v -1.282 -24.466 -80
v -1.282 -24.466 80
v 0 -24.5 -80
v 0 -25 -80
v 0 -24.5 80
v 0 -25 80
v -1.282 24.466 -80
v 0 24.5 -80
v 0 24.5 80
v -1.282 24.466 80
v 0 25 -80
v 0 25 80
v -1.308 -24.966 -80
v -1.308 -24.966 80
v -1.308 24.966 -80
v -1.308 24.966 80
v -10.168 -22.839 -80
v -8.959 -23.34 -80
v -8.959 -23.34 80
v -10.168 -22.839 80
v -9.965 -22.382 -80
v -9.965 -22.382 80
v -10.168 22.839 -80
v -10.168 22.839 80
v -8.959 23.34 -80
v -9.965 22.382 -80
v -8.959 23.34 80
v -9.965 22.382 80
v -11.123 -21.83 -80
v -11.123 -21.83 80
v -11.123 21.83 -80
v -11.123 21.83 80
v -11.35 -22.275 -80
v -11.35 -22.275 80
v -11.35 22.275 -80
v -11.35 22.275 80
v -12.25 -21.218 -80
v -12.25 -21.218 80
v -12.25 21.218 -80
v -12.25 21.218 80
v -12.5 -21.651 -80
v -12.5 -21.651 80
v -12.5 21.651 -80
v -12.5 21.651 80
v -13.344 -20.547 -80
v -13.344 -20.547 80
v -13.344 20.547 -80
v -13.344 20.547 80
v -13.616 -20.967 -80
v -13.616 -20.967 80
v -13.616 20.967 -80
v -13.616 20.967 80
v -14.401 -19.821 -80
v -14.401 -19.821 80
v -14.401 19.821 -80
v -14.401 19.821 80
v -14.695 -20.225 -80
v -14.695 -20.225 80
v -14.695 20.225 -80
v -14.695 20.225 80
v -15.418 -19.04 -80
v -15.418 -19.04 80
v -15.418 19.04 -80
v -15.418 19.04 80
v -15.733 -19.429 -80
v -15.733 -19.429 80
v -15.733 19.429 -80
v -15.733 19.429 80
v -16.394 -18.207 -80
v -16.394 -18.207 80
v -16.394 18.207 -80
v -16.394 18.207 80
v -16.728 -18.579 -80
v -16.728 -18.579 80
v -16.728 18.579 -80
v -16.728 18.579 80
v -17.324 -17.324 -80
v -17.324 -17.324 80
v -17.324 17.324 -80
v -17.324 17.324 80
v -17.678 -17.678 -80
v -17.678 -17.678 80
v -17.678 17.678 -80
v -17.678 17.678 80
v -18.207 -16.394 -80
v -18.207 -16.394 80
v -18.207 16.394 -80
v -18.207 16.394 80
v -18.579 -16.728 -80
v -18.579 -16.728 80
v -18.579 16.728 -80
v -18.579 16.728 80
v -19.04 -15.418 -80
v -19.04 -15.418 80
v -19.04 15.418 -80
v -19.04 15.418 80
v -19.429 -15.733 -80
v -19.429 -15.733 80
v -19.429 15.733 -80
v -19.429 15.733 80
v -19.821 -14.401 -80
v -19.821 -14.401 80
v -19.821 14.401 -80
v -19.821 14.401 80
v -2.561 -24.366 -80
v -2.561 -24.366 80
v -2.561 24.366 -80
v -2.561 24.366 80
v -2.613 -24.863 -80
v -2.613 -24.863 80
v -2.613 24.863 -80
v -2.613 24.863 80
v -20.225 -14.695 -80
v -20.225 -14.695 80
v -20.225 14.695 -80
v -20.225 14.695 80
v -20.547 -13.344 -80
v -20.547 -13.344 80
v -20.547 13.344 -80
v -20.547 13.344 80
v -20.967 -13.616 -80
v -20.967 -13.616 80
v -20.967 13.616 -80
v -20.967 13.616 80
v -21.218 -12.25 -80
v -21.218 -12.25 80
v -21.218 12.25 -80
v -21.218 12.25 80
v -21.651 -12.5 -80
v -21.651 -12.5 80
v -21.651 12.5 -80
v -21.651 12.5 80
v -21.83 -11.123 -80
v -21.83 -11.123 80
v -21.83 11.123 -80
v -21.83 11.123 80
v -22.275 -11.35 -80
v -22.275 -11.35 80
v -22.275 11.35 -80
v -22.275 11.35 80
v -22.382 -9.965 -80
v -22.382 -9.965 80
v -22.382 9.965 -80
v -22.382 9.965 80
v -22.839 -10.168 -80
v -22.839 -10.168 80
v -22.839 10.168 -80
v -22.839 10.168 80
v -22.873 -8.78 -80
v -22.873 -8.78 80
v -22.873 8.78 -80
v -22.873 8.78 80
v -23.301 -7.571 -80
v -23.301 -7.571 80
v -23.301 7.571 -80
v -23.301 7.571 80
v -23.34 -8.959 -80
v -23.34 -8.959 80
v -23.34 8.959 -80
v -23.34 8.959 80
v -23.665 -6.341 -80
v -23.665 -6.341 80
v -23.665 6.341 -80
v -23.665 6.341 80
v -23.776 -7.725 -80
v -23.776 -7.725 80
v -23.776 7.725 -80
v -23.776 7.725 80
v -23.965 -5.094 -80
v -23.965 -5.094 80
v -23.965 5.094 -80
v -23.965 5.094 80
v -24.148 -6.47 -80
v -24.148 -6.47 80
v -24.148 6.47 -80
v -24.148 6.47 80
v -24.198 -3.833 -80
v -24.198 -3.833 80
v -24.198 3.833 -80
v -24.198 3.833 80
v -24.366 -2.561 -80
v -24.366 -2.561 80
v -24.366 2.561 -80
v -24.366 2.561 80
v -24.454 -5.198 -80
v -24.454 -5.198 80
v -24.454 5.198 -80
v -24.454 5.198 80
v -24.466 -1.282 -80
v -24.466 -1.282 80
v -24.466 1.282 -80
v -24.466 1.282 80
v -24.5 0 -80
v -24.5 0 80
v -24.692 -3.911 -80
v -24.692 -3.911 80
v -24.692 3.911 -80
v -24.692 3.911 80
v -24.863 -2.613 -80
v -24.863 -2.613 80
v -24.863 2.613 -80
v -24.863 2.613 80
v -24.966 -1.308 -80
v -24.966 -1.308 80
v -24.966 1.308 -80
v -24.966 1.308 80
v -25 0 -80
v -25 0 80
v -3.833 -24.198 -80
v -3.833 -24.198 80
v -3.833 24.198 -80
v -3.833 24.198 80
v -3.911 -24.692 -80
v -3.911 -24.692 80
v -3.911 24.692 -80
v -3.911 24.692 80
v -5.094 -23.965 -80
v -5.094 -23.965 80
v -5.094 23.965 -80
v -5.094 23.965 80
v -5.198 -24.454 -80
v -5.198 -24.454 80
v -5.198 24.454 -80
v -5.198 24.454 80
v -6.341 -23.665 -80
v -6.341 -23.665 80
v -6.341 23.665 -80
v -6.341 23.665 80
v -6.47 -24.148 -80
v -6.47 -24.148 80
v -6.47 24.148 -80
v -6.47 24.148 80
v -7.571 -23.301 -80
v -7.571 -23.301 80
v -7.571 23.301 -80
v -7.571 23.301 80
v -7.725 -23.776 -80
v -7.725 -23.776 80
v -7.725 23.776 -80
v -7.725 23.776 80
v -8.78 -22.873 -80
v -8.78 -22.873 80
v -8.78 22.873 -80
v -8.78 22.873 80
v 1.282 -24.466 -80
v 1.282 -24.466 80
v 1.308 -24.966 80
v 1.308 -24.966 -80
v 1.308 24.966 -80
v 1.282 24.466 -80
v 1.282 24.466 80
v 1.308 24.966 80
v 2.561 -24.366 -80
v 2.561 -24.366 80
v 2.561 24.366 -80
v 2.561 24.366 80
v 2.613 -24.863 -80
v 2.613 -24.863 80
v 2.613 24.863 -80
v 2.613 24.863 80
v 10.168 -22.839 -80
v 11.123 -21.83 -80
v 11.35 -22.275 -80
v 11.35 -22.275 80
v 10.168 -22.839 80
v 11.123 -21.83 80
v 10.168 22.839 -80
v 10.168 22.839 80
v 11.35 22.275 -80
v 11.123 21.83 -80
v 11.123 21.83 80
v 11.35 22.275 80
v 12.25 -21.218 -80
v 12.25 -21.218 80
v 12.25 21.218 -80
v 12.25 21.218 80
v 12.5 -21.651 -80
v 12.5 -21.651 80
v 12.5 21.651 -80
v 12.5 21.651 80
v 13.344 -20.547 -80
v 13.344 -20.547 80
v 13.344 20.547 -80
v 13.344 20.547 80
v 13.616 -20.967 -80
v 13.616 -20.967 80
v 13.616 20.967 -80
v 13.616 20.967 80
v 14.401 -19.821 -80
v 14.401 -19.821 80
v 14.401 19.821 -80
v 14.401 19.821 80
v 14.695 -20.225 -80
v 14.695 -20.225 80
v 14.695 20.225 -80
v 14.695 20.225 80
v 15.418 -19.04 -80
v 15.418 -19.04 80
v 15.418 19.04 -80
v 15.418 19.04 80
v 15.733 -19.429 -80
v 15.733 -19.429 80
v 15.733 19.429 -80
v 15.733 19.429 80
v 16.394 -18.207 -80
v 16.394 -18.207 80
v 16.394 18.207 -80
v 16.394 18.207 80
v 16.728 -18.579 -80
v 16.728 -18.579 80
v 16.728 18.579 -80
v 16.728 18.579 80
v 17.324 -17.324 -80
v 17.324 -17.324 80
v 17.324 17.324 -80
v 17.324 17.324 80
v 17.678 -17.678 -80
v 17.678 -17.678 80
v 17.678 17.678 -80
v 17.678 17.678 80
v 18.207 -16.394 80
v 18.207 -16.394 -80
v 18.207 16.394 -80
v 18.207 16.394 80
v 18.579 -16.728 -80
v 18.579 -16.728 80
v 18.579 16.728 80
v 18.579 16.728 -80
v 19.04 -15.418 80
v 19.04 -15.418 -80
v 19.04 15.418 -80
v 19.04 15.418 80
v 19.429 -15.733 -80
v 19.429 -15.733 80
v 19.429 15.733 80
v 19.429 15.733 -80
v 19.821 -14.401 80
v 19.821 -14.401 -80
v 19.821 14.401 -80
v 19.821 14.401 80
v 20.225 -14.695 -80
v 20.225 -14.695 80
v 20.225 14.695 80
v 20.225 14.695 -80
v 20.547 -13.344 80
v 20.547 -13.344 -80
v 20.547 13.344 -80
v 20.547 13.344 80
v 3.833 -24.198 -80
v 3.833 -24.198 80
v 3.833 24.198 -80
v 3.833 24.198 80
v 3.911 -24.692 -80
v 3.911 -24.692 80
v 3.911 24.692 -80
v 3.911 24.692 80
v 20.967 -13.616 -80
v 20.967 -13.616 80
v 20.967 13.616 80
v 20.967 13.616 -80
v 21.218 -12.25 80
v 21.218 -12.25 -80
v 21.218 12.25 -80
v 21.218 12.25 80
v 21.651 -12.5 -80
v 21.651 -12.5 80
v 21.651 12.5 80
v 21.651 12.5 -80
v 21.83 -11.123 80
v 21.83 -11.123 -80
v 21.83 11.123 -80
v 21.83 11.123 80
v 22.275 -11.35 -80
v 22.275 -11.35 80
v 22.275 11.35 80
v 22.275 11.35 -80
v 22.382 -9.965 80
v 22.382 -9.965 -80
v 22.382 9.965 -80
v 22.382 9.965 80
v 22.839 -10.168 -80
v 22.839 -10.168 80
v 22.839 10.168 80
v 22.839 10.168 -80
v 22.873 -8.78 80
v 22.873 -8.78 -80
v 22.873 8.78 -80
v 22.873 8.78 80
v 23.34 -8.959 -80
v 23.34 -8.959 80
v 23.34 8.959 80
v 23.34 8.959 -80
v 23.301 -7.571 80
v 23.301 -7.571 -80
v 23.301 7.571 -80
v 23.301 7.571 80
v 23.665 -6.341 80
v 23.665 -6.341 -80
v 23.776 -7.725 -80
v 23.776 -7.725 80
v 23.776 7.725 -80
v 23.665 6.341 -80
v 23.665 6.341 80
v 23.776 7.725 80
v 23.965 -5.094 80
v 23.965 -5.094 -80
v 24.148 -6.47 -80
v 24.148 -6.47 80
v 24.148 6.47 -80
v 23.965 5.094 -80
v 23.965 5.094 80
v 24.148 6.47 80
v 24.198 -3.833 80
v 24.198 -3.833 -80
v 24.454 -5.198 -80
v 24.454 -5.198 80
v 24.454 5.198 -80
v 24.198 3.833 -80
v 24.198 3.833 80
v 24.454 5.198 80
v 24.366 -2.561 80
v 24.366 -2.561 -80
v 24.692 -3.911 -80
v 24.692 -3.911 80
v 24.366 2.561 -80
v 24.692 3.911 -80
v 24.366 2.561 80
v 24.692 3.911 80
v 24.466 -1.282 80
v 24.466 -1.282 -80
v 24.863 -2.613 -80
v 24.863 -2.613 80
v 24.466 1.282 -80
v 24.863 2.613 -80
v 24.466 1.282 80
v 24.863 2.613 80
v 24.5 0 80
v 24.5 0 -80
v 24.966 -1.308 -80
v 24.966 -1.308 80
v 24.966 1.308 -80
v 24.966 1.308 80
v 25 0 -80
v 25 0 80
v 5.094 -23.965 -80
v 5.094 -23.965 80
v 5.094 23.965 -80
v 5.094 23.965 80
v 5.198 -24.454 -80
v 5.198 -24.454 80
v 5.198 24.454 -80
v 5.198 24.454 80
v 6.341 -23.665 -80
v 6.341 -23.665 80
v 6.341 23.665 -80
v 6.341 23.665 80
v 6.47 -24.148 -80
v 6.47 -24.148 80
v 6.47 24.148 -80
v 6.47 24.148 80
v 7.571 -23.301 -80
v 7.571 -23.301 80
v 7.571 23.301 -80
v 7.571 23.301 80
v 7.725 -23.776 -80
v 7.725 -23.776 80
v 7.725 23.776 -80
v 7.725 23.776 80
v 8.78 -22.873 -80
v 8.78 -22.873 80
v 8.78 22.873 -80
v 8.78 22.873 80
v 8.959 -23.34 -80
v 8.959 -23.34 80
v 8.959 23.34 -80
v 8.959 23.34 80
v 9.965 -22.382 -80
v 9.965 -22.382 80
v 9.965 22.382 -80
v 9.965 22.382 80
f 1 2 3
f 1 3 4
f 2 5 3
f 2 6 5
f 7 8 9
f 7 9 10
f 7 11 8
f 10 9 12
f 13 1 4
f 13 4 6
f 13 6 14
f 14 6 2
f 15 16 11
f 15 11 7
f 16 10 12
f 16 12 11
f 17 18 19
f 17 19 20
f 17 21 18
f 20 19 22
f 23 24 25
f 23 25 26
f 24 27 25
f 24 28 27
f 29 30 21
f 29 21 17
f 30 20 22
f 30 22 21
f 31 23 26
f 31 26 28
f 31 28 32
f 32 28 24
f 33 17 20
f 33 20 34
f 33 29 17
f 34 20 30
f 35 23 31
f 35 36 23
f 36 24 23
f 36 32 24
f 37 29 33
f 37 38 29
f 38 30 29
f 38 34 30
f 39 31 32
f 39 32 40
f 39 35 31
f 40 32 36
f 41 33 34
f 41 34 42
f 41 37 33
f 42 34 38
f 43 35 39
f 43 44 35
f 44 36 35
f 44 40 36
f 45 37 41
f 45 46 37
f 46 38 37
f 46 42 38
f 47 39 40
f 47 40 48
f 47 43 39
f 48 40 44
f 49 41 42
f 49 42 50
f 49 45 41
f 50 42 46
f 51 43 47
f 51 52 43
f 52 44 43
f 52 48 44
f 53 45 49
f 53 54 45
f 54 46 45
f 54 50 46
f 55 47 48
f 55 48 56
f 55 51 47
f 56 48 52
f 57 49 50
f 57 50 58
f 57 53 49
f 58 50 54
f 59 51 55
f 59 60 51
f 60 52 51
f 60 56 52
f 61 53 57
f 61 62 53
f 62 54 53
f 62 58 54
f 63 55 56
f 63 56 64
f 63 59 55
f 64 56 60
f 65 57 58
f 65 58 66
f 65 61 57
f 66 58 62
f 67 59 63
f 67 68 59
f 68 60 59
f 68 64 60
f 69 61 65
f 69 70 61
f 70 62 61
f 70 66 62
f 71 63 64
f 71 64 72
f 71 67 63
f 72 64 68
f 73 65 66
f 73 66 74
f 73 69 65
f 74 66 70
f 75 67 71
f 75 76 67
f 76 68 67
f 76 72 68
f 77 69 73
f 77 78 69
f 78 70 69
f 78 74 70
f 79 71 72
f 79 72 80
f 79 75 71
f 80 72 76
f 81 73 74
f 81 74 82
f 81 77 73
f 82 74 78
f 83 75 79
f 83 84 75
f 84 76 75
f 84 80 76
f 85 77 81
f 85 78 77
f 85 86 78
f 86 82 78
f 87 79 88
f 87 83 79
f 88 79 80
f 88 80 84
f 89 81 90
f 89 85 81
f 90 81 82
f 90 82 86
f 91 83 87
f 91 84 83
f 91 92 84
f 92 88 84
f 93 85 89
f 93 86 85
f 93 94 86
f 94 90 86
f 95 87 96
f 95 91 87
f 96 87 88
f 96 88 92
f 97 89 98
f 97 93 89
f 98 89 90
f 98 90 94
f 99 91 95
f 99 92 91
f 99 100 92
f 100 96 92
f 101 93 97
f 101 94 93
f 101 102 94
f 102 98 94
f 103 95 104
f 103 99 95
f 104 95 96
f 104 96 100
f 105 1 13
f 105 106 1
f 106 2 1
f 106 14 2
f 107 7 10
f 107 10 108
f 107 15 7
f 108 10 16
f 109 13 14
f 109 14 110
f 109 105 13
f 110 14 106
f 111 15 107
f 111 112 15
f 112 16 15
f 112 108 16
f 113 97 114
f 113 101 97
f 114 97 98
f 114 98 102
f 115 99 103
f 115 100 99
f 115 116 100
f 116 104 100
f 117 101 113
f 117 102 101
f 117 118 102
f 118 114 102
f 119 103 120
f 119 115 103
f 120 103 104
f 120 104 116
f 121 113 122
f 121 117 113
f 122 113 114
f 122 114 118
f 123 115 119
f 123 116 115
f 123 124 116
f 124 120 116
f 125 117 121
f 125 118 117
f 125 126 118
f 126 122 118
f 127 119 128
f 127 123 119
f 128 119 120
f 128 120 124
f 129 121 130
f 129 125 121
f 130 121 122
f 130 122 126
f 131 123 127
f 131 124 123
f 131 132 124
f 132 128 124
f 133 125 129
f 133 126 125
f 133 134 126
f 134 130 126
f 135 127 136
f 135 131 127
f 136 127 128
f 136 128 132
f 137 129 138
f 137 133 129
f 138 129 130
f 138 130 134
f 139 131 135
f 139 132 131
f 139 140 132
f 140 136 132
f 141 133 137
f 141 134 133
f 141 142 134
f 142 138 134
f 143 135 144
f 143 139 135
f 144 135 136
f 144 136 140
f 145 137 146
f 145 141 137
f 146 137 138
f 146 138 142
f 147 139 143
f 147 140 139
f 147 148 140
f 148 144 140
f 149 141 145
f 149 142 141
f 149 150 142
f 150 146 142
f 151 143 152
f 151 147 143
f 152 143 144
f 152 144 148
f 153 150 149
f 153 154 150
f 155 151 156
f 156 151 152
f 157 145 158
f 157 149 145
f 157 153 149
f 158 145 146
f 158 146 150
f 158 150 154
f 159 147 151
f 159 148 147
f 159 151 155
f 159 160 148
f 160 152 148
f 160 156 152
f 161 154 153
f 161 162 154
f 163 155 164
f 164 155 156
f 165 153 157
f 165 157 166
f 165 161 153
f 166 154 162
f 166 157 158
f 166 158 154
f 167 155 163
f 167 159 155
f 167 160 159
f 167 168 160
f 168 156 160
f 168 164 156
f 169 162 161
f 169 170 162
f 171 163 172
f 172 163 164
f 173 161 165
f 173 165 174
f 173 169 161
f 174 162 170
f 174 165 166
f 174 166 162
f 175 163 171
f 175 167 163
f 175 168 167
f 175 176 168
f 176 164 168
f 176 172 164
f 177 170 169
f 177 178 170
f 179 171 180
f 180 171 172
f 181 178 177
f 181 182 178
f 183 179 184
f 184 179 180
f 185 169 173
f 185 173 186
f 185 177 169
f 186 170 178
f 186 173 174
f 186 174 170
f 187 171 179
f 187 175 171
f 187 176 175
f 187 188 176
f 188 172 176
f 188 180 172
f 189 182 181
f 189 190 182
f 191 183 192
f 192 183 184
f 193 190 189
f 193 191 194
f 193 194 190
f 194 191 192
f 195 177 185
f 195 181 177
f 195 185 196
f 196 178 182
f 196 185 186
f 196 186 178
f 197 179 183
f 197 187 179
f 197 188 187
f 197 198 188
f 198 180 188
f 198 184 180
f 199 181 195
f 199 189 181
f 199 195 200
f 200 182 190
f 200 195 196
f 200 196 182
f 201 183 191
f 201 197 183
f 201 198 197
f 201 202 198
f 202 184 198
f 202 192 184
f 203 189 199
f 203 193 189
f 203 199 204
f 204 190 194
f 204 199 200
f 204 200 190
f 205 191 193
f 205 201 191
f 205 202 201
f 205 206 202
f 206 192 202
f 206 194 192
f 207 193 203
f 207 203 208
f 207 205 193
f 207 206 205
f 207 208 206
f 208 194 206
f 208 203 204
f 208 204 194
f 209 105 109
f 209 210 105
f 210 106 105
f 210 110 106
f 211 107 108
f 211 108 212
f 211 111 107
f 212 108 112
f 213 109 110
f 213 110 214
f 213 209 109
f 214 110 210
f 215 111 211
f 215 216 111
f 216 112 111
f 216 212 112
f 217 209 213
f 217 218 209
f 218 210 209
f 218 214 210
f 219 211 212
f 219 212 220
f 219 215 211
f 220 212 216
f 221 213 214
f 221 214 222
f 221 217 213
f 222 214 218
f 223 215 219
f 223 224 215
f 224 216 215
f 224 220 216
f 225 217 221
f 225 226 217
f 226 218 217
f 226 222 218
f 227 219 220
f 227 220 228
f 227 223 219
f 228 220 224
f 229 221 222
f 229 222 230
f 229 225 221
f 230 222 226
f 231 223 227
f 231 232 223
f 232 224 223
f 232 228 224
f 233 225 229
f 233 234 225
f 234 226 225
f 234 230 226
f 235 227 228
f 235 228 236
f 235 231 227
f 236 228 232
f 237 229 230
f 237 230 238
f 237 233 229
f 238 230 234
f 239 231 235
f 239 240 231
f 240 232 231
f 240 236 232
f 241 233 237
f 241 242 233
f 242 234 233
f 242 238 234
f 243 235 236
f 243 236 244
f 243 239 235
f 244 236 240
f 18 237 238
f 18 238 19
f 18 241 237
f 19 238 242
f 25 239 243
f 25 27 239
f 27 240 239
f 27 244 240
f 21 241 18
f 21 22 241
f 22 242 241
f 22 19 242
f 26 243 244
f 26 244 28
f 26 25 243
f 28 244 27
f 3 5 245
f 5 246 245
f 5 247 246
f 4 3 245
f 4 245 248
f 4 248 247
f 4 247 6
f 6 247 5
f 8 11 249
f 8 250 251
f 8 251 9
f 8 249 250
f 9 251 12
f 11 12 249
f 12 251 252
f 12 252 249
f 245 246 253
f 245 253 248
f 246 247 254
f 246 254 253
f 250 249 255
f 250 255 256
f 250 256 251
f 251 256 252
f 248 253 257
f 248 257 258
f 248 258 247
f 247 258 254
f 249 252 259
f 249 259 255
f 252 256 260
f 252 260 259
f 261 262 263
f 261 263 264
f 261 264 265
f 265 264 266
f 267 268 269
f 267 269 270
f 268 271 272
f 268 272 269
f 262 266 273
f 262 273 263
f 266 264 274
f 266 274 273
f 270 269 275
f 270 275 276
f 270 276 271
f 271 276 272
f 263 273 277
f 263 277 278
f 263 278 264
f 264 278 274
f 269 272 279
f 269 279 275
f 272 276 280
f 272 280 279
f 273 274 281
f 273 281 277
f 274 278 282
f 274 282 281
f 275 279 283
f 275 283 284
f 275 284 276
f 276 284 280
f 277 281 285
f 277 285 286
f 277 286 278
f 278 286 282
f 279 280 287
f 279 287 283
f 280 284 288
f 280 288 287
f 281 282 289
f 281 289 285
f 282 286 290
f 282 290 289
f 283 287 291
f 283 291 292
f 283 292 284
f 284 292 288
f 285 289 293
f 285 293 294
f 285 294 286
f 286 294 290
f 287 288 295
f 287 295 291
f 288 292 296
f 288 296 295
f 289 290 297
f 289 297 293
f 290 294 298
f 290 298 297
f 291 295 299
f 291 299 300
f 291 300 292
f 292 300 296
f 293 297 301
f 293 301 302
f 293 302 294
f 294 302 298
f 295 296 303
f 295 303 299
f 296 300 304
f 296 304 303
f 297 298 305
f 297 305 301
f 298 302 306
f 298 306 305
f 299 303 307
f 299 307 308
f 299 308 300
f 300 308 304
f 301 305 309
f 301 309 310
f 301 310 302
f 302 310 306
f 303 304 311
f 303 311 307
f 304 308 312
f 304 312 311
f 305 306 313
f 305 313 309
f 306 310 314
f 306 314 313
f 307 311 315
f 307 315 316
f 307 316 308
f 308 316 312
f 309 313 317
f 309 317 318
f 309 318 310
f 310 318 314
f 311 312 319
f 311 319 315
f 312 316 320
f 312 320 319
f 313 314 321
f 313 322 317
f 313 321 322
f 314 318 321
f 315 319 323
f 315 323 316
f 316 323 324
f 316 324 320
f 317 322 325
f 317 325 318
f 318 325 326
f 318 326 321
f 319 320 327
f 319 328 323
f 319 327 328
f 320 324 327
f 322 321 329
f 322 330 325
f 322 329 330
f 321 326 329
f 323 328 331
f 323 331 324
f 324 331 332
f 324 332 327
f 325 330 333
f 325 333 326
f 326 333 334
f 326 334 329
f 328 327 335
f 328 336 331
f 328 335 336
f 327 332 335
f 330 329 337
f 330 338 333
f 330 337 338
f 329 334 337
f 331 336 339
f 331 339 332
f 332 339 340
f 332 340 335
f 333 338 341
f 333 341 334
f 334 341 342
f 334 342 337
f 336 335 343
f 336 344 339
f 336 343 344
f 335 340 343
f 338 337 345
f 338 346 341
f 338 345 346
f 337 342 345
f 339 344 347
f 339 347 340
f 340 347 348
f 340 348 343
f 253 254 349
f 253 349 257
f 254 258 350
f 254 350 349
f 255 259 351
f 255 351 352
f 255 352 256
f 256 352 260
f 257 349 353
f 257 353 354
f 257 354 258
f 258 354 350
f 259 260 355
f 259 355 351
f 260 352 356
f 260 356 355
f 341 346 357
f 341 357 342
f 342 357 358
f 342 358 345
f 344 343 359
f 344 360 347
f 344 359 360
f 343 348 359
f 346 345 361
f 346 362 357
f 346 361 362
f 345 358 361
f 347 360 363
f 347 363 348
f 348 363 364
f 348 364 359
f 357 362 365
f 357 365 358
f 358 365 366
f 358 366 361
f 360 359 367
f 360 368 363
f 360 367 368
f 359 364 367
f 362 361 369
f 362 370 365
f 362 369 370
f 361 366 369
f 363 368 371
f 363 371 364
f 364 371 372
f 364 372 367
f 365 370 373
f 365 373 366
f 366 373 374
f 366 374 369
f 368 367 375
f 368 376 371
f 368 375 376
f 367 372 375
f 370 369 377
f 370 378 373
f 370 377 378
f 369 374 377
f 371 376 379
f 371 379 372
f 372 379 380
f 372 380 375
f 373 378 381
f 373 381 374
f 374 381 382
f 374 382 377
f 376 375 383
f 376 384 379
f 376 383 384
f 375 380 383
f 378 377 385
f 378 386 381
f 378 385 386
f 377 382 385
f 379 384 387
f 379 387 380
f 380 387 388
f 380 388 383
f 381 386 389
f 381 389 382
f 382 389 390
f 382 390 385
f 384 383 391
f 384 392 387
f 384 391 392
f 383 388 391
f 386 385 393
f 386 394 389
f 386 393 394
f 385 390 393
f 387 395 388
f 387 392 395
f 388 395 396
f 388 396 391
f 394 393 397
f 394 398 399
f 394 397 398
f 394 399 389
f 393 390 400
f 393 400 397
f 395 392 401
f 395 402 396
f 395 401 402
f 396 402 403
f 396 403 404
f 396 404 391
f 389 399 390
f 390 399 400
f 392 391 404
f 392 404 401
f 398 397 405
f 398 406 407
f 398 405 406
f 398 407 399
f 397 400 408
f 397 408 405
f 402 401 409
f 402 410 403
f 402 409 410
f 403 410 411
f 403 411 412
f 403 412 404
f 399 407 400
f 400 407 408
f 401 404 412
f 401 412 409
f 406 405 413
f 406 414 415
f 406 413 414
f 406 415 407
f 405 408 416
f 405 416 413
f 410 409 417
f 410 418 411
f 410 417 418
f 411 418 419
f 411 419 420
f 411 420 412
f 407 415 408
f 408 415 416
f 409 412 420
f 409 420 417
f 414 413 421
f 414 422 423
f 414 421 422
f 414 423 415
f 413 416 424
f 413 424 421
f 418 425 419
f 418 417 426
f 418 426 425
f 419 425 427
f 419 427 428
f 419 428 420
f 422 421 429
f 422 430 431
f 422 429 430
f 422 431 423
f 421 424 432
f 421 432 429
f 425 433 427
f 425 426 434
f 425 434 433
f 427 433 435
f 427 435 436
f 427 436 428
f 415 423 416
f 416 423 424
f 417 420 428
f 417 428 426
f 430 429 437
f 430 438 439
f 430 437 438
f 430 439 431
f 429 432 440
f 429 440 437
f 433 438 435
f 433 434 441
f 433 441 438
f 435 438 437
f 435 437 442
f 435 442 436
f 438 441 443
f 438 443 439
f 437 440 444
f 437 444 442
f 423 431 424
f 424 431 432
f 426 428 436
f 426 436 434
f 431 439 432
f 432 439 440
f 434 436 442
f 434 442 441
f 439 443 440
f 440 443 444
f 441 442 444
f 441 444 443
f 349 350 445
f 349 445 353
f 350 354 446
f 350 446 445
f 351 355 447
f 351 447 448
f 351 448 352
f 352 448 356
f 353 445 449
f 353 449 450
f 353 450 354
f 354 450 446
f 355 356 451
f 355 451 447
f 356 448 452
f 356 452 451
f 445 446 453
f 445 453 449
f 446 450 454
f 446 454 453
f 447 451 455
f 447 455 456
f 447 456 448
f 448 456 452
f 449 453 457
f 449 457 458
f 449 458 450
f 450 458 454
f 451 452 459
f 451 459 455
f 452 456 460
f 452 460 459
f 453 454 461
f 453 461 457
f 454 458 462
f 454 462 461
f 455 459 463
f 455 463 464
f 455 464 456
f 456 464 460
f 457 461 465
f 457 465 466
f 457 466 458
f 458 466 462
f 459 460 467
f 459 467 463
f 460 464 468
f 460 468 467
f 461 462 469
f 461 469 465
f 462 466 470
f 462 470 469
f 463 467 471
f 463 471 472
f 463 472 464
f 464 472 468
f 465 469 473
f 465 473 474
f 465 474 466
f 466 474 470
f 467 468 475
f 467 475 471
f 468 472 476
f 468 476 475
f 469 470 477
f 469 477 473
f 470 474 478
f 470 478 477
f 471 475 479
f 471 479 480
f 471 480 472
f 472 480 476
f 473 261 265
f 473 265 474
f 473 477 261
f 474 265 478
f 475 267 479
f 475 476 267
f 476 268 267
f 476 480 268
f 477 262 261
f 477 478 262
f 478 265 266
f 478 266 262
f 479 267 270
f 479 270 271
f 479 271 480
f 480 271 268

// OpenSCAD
// file: ../config.scad
//hull
outer_diameter = 50;
wall_thickness = 0.5;
motor_wall_thickness = 1.5;
motor_holder_count = 3;
stage_height = 160;

//stabilizers
stabilizers_count = 3;
stabilizers_thickness = 1.5;
stabilizers_height = 140;
stabilizers_angle = 70;

//motor
motor_diameter = 24;
motor_height = 70;

//stage joint
joint_outer_diameter = 48;
joint_height = 10;
stage_joint_height = 15;

//container
container_height = 80;
container_outer_diameter = 55;
container_wall_thickness = 1;
container_transition_height = 10;

//nosecone
cone_joint_outer_diameter = 52.5;
// main file
include <../config.scad>

$fn = 120;

module stage() {
difference() {
	cylinder(d=outer_diameter, h=stage_height);
	cylinder(d=outer_diameter-wall_thickness*2, h=stage_height);
}
}

translate([0, 0, -stage_height/2]) stage();
